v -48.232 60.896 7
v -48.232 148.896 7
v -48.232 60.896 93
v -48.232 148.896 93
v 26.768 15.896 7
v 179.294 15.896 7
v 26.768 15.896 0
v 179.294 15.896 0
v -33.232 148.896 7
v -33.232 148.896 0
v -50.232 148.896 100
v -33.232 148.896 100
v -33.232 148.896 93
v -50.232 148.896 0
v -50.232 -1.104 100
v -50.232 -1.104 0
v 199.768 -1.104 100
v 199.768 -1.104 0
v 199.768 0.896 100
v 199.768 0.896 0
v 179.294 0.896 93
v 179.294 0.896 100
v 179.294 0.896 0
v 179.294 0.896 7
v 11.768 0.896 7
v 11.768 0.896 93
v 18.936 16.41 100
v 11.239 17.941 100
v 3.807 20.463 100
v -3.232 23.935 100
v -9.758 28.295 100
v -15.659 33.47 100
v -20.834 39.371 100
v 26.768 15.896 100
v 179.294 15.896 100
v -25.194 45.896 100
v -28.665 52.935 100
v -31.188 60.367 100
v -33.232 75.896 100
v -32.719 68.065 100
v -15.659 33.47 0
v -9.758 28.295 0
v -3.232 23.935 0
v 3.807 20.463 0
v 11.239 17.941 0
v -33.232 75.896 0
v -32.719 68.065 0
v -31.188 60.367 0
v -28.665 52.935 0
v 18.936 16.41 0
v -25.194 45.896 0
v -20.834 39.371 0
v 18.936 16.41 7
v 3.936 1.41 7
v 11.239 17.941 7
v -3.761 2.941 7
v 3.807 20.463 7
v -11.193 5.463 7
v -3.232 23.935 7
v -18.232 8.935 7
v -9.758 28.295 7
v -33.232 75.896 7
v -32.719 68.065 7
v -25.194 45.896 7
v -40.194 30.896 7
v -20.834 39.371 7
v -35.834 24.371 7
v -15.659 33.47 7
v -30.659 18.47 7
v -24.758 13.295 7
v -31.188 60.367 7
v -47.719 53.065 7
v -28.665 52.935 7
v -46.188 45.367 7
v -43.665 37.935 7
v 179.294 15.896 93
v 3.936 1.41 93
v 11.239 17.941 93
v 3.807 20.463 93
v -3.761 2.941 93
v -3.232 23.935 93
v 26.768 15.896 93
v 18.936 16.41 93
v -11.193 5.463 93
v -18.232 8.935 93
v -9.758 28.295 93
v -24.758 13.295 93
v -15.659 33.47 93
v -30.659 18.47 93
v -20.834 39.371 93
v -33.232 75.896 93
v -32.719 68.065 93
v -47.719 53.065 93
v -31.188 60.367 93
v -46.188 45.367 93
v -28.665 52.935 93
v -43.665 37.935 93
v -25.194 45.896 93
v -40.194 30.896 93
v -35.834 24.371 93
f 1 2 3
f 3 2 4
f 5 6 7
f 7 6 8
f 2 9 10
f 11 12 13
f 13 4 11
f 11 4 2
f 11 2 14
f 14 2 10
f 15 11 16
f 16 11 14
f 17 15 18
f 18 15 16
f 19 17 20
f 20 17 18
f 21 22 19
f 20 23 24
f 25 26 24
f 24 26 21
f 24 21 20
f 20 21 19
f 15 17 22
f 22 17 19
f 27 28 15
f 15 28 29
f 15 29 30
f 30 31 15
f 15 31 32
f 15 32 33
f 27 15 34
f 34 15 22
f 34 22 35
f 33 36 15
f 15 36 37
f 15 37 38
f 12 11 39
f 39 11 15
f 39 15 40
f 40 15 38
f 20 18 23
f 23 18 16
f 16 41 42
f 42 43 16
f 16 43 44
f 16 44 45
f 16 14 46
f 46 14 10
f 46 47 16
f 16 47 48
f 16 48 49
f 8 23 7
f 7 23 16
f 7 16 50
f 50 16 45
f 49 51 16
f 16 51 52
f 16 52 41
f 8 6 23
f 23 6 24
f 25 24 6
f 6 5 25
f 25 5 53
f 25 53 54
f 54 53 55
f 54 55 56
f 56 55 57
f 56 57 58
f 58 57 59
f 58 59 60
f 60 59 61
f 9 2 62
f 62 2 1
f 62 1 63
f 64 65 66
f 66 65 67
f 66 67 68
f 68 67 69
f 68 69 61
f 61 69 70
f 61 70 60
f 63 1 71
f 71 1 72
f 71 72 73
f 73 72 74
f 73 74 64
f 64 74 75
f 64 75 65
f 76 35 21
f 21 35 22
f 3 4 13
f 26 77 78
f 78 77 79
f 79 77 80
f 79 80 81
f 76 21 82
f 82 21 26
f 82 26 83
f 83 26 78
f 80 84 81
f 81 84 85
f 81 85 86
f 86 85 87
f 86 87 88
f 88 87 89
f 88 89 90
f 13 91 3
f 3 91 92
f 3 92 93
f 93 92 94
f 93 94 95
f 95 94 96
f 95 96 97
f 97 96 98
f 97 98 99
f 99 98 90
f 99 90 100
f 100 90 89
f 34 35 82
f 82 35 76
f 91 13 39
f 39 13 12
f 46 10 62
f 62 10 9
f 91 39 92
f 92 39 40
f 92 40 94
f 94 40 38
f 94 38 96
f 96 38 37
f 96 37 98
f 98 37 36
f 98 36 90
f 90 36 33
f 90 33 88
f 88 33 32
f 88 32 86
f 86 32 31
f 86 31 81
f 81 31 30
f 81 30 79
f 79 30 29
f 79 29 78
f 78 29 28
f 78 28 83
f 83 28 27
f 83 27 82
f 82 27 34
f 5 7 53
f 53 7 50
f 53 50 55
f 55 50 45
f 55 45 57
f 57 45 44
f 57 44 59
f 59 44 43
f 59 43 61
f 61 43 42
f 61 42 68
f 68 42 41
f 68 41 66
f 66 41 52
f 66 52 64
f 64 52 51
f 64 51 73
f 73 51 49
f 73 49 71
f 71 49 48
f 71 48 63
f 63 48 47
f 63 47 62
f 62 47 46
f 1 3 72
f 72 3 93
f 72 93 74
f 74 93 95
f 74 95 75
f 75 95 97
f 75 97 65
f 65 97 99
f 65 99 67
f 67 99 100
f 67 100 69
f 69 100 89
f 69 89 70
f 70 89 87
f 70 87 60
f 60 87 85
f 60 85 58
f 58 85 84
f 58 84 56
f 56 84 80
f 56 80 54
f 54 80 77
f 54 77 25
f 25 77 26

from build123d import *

# Parameters (mm, degrees)
BOSS_EXTRUDE1_DEPTH = 100
SKETCH5_W           = 227.526539108
SKETCH5_H           = 7
BOSS_EXTRUDE4_DEPTH = 15
SKETCH6_W           = 7
SKETCH6_H           = 133
BOSS_EXTRUDE5_DEPTH = 15
FILLET2_R           = 60


with BuildPart() as part:
    # Sketch2 → Boss-Extrude1 (new body)
    with BuildSketch(Plane.XY):
        Polygon((-0.232315645, -1.10373444), (-50.232315645, -1.10373444), (-50.232315645, 148.89626556), (-48.232315645, 148.89626556), (-48.232315645, 0.89626556), (-3.293749688, 0.89626556), (-0.232315645, 0.89626556), (199.767684355, 0.89626556), (199.767684355, -1.10373444), align=None)
    extrude(amount=BOSS_EXTRUDE1_DEPTH)

    # Sketch5 → Boss-Extrude4 (add)
    with BuildSketch(Plane(origin=(0, 0.89626556, 0), x_dir=(1, 0, 0), z_dir=(0, 1, 0))):
        with Locations((65.530953909, -3.5)):
            Rectangle(SKETCH5_W, SKETCH5_H)
        with Locations((65.530953909, -96.5)):
            Rectangle(SKETCH5_W, SKETCH5_H)
    extrude(amount=BOSS_EXTRUDE4_DEPTH)

    # Sketch6 → Boss-Extrude5 (add)
    with BuildSketch(Plane(origin=(-48.232315645, 0, 0), x_dir=(0, 0, -1), z_dir=(1, 0, 0))):
        with Locations((-96.5, 82.39626556)):
            Rectangle(SKETCH6_W, SKETCH6_H)
        with Locations((-3.5, 82.39626556)):
            Rectangle(SKETCH6_W, SKETCH6_H)
    extrude(amount=BOSS_EXTRUDE5_DEPTH)

    # Fillet2
    fillet2_edges = [part.edges().sort_by_distance(p)[0] for p in [
        (-48.232315645, 0.89626556, 50),
        (-33.232315645, 15.89626556, 96.5),
        (-33.232315645, 15.89626556, 3.5),
    ]]
    fillet(fillet2_edges, radius=FILLET2_R)


solid = part.part
